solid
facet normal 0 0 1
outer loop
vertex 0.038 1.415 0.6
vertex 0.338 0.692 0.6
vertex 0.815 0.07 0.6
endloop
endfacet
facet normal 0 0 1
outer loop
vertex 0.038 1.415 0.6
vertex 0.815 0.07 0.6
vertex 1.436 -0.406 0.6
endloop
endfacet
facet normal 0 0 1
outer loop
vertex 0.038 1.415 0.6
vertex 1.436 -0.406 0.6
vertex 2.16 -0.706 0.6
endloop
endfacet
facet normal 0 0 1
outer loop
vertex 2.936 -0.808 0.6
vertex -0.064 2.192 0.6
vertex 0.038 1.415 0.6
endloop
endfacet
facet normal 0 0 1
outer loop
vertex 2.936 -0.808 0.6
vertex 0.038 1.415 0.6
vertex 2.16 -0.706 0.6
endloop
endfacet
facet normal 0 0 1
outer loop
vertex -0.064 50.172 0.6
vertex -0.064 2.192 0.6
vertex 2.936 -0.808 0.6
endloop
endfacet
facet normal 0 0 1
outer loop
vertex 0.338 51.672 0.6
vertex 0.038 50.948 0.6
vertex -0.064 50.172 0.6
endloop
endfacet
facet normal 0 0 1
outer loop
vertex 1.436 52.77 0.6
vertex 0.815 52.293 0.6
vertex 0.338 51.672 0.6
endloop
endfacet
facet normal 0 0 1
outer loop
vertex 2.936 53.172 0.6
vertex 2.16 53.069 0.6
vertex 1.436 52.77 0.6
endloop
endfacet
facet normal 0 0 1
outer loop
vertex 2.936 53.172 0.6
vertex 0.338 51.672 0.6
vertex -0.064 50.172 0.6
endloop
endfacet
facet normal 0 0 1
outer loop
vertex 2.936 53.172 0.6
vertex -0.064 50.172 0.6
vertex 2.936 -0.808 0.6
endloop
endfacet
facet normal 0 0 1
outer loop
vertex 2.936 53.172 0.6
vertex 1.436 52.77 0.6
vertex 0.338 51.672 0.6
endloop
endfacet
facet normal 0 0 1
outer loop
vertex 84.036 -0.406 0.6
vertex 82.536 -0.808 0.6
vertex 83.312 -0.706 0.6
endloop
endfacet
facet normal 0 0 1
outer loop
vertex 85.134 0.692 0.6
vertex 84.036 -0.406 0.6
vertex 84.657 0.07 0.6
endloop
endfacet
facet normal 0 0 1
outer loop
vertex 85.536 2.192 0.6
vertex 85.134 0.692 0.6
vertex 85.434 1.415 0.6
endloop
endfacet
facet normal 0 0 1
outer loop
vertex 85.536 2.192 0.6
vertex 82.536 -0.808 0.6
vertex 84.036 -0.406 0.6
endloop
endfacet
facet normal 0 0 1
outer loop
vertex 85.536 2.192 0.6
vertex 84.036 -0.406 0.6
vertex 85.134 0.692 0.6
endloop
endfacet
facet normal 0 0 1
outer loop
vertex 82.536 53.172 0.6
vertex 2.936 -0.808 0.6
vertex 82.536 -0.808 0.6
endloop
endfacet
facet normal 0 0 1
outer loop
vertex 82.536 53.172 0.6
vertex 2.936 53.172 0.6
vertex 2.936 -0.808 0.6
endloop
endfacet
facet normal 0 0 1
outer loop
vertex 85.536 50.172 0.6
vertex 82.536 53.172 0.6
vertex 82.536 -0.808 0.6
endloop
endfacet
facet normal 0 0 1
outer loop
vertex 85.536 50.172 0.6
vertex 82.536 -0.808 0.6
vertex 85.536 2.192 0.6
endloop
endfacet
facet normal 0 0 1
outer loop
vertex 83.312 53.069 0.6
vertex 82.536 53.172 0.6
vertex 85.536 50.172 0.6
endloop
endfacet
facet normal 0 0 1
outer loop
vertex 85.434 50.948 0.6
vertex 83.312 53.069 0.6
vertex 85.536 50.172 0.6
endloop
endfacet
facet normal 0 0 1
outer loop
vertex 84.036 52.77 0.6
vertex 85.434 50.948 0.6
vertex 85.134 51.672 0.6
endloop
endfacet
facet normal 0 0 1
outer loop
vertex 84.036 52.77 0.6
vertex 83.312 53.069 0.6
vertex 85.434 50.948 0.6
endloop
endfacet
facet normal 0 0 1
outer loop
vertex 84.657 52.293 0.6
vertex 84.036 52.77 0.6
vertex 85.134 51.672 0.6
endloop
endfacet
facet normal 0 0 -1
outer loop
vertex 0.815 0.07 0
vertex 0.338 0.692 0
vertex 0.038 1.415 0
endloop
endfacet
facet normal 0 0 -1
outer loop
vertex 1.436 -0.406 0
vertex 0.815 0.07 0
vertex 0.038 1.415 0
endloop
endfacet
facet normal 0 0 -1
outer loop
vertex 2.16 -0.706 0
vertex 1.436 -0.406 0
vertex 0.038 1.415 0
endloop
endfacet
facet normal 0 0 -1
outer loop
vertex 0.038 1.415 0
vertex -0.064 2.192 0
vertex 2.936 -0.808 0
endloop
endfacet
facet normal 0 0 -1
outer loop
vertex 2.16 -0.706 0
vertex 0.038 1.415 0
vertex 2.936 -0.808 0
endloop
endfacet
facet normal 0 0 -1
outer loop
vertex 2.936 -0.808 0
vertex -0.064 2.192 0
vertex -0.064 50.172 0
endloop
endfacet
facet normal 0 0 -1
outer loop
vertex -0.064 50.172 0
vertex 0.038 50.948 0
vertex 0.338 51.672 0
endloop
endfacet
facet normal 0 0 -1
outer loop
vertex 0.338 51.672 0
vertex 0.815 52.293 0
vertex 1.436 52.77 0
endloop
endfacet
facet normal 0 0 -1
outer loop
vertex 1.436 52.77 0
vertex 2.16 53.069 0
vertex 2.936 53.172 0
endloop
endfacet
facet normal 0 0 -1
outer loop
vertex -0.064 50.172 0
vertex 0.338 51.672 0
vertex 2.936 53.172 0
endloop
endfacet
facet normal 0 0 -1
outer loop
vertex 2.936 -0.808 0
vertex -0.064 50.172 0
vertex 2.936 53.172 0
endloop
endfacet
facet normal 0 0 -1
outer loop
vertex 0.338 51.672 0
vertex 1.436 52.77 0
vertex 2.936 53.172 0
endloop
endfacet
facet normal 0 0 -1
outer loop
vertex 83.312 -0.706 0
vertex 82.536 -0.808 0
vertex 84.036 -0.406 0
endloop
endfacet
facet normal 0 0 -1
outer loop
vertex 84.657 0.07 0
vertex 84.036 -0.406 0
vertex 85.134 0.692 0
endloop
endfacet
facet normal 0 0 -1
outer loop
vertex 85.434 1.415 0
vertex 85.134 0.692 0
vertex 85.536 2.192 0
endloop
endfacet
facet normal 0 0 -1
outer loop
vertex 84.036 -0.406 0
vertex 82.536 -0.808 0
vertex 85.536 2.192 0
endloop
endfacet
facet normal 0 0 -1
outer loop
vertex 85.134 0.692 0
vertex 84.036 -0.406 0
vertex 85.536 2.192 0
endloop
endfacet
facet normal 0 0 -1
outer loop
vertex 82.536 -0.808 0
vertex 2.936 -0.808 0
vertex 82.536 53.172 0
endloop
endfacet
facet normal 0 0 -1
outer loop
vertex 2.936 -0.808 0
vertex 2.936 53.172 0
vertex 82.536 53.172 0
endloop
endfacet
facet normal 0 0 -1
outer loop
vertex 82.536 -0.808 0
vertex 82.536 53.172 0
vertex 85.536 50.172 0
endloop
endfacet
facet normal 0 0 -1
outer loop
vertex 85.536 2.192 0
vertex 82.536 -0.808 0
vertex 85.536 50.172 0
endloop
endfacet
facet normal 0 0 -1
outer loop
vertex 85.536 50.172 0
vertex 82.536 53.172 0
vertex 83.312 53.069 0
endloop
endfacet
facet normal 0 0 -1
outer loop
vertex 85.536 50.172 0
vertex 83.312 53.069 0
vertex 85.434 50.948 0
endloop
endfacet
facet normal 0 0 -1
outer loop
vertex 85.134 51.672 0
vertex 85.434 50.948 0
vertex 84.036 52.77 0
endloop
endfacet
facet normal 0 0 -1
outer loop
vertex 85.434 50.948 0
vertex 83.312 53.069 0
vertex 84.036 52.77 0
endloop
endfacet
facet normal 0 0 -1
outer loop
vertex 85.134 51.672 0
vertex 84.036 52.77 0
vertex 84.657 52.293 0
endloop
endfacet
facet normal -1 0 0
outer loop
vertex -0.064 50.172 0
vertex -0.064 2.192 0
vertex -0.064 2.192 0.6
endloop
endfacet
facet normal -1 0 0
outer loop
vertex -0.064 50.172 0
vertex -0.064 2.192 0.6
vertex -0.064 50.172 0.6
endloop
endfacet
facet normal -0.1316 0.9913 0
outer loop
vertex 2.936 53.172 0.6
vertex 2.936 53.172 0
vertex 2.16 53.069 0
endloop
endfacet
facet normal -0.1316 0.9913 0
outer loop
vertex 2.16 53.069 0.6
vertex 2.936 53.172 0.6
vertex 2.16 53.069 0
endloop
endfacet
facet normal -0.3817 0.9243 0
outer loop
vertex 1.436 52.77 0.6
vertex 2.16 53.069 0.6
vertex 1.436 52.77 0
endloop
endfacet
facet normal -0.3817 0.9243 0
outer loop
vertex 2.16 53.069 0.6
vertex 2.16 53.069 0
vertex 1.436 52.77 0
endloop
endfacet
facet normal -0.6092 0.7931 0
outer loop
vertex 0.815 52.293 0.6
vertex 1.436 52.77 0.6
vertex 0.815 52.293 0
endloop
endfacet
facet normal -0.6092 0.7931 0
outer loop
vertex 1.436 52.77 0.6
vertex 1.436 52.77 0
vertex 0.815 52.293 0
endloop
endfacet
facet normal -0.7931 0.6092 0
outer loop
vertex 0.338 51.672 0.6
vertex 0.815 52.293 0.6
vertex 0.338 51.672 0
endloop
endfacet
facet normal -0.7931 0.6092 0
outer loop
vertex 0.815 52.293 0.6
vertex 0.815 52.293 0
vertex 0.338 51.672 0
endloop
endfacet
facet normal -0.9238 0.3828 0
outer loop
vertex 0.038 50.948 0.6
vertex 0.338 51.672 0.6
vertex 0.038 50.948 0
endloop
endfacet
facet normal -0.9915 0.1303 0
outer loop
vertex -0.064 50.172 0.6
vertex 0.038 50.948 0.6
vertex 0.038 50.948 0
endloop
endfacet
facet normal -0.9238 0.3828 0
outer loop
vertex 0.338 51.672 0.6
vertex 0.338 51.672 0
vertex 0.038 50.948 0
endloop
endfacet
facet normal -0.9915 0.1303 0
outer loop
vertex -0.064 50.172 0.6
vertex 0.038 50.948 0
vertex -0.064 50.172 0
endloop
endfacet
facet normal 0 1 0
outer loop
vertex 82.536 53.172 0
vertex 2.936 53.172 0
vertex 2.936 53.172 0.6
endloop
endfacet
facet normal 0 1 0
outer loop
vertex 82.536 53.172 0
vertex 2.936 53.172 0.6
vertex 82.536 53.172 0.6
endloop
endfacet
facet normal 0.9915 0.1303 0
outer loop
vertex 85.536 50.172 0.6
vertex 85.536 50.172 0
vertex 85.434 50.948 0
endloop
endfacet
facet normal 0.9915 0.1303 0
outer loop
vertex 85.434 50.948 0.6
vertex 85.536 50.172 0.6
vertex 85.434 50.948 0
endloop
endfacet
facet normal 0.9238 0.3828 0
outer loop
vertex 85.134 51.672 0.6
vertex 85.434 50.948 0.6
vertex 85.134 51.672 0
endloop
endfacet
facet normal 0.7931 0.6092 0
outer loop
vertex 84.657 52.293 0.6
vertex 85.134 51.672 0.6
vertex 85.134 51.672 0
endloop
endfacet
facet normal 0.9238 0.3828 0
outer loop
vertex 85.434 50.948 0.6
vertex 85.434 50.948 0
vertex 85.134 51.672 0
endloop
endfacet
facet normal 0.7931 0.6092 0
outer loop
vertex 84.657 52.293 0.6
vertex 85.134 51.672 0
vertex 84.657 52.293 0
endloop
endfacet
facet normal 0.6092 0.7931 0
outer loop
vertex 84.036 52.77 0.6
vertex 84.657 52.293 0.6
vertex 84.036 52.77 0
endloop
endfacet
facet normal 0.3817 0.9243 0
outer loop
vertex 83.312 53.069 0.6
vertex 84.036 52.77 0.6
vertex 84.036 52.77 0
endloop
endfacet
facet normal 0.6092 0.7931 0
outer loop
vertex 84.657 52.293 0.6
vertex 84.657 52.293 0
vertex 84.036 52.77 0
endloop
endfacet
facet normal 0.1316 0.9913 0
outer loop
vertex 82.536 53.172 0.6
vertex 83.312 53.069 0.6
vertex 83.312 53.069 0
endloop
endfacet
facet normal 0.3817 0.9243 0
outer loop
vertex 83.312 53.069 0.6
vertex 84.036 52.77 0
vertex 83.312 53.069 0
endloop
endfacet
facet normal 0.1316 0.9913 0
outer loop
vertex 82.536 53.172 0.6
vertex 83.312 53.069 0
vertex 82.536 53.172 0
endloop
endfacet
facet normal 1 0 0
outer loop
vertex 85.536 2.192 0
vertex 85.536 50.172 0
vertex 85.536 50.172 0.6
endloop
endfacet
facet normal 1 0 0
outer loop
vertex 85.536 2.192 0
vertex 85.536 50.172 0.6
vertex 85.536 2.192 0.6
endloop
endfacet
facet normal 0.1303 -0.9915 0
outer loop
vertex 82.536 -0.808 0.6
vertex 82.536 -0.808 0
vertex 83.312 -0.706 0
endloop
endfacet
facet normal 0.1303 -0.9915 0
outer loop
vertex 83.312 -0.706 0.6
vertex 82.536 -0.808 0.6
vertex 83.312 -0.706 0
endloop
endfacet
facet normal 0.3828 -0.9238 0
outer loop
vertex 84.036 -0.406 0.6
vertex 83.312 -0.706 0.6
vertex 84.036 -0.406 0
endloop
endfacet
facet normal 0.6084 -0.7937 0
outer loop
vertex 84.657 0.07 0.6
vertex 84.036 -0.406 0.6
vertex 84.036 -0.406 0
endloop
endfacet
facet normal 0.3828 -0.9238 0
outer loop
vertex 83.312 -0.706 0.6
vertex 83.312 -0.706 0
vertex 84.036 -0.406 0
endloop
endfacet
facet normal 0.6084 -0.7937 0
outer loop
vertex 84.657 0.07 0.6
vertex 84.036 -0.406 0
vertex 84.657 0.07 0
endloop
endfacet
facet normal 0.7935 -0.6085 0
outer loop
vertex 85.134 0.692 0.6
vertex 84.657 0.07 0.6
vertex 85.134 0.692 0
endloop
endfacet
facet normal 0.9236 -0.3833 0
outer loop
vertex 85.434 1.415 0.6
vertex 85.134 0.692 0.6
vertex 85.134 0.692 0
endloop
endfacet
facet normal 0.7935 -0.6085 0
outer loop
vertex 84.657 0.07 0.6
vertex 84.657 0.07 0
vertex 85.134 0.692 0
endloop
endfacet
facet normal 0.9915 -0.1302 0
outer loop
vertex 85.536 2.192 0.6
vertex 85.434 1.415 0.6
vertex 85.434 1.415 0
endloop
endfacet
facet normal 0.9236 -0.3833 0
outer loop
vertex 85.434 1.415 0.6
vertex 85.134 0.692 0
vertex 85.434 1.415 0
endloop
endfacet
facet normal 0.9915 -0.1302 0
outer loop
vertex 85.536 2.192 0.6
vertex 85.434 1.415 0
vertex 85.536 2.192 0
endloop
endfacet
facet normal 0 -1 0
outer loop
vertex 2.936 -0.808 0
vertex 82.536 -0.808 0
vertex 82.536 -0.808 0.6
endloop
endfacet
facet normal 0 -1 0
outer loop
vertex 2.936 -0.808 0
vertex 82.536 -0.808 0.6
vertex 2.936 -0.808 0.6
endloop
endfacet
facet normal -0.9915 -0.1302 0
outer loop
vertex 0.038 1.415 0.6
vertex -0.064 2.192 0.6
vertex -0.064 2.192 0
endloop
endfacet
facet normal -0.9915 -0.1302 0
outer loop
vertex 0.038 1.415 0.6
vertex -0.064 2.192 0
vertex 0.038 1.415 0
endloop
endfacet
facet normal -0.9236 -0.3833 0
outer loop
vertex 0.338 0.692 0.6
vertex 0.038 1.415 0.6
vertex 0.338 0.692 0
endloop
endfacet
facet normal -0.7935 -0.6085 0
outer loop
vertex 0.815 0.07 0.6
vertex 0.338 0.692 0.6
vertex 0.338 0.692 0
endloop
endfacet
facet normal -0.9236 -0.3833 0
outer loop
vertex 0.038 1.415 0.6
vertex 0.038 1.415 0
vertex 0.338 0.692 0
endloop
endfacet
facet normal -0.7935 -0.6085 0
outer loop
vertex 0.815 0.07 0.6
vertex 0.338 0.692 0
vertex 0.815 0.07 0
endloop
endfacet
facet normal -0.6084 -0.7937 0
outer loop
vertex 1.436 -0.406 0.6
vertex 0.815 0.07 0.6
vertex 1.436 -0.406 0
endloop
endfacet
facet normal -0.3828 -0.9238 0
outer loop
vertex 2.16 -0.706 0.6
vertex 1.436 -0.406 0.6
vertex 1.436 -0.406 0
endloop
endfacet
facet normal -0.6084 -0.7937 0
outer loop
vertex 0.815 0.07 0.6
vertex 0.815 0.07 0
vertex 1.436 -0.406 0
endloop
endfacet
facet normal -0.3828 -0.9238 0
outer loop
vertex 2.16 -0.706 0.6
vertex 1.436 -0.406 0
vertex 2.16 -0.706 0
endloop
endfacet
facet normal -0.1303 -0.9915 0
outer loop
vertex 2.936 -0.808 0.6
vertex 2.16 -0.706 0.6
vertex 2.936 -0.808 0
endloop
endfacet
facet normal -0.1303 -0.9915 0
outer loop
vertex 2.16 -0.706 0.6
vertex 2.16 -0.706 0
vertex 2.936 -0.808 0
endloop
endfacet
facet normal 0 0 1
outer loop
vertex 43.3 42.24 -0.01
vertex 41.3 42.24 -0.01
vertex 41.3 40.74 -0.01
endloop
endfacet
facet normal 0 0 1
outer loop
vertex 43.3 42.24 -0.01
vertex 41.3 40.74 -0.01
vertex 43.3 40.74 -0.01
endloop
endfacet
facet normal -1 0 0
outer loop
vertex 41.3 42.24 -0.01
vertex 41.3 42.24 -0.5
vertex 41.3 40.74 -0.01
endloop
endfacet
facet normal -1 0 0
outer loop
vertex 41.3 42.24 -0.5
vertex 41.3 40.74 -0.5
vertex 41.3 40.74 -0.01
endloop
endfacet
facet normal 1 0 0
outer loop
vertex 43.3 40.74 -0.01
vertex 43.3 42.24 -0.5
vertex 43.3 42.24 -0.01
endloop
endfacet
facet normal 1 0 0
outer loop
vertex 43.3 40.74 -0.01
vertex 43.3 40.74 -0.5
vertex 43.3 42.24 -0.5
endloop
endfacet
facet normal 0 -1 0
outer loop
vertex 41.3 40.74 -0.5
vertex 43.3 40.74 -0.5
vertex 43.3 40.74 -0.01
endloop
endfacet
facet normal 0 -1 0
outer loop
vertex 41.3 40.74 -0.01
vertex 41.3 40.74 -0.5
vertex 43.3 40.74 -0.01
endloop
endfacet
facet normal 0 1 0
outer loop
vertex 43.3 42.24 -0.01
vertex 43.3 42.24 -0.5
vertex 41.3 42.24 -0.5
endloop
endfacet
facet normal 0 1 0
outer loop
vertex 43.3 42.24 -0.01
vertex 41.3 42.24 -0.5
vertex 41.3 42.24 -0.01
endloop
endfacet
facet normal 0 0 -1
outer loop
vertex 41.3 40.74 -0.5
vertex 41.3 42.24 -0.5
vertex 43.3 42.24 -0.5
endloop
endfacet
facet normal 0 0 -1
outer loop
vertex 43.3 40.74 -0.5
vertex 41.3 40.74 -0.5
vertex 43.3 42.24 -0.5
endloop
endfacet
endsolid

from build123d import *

# Parameters (mm, degrees)
PAD_DEPTH = 0.6
BOX_W     = 2
BOX_H     = 1.5
BOX_DEPTH = 0.49


with BuildPart() as board:
    # Sketch → Pad (new body)
    with BuildSketch(Plane.XY):
        with BuildLine():
            Line((2.936035, 53.171589), (82.536035, 53.171589))
            ThreePointArc((85.536035, 50.171589), (84.657355, 52.292909), (82.536035, 53.171589))
            Line((85.536035, 50.171589), (85.536035, 2.191589))
            ThreePointArc((82.536035, -0.808411), (84.657355, 0.070269), (85.536035, 2.191589))
            Line((82.536035, -0.808411), (2.936035, -0.808411))
            ThreePointArc((-0.063965, 2.191589), (0.814715, 0.070269), (2.936035, -0.808411))
            Line((-0.063965, 2.191589), (-0.063965, 50.171589))
            ThreePointArc((2.936035, 53.171589), (0.814715, 52.292909), (-0.063965, 50.171589))
        make_face()
    extrude(amount=PAD_DEPTH)


with BuildPart() as cube:
    # Box → Box (new body)
    with BuildSketch(Plane(origin=(41.3, 40.74, -0.5), x_dir=(1, 0, 0), z_dir=(0, 0, 1))):
        with Locations((1, 0.75)):
            Rectangle(BOX_W, BOX_H)
    extrude(amount=BOX_DEPTH)


solid = Compound([board.part, cube.part])
